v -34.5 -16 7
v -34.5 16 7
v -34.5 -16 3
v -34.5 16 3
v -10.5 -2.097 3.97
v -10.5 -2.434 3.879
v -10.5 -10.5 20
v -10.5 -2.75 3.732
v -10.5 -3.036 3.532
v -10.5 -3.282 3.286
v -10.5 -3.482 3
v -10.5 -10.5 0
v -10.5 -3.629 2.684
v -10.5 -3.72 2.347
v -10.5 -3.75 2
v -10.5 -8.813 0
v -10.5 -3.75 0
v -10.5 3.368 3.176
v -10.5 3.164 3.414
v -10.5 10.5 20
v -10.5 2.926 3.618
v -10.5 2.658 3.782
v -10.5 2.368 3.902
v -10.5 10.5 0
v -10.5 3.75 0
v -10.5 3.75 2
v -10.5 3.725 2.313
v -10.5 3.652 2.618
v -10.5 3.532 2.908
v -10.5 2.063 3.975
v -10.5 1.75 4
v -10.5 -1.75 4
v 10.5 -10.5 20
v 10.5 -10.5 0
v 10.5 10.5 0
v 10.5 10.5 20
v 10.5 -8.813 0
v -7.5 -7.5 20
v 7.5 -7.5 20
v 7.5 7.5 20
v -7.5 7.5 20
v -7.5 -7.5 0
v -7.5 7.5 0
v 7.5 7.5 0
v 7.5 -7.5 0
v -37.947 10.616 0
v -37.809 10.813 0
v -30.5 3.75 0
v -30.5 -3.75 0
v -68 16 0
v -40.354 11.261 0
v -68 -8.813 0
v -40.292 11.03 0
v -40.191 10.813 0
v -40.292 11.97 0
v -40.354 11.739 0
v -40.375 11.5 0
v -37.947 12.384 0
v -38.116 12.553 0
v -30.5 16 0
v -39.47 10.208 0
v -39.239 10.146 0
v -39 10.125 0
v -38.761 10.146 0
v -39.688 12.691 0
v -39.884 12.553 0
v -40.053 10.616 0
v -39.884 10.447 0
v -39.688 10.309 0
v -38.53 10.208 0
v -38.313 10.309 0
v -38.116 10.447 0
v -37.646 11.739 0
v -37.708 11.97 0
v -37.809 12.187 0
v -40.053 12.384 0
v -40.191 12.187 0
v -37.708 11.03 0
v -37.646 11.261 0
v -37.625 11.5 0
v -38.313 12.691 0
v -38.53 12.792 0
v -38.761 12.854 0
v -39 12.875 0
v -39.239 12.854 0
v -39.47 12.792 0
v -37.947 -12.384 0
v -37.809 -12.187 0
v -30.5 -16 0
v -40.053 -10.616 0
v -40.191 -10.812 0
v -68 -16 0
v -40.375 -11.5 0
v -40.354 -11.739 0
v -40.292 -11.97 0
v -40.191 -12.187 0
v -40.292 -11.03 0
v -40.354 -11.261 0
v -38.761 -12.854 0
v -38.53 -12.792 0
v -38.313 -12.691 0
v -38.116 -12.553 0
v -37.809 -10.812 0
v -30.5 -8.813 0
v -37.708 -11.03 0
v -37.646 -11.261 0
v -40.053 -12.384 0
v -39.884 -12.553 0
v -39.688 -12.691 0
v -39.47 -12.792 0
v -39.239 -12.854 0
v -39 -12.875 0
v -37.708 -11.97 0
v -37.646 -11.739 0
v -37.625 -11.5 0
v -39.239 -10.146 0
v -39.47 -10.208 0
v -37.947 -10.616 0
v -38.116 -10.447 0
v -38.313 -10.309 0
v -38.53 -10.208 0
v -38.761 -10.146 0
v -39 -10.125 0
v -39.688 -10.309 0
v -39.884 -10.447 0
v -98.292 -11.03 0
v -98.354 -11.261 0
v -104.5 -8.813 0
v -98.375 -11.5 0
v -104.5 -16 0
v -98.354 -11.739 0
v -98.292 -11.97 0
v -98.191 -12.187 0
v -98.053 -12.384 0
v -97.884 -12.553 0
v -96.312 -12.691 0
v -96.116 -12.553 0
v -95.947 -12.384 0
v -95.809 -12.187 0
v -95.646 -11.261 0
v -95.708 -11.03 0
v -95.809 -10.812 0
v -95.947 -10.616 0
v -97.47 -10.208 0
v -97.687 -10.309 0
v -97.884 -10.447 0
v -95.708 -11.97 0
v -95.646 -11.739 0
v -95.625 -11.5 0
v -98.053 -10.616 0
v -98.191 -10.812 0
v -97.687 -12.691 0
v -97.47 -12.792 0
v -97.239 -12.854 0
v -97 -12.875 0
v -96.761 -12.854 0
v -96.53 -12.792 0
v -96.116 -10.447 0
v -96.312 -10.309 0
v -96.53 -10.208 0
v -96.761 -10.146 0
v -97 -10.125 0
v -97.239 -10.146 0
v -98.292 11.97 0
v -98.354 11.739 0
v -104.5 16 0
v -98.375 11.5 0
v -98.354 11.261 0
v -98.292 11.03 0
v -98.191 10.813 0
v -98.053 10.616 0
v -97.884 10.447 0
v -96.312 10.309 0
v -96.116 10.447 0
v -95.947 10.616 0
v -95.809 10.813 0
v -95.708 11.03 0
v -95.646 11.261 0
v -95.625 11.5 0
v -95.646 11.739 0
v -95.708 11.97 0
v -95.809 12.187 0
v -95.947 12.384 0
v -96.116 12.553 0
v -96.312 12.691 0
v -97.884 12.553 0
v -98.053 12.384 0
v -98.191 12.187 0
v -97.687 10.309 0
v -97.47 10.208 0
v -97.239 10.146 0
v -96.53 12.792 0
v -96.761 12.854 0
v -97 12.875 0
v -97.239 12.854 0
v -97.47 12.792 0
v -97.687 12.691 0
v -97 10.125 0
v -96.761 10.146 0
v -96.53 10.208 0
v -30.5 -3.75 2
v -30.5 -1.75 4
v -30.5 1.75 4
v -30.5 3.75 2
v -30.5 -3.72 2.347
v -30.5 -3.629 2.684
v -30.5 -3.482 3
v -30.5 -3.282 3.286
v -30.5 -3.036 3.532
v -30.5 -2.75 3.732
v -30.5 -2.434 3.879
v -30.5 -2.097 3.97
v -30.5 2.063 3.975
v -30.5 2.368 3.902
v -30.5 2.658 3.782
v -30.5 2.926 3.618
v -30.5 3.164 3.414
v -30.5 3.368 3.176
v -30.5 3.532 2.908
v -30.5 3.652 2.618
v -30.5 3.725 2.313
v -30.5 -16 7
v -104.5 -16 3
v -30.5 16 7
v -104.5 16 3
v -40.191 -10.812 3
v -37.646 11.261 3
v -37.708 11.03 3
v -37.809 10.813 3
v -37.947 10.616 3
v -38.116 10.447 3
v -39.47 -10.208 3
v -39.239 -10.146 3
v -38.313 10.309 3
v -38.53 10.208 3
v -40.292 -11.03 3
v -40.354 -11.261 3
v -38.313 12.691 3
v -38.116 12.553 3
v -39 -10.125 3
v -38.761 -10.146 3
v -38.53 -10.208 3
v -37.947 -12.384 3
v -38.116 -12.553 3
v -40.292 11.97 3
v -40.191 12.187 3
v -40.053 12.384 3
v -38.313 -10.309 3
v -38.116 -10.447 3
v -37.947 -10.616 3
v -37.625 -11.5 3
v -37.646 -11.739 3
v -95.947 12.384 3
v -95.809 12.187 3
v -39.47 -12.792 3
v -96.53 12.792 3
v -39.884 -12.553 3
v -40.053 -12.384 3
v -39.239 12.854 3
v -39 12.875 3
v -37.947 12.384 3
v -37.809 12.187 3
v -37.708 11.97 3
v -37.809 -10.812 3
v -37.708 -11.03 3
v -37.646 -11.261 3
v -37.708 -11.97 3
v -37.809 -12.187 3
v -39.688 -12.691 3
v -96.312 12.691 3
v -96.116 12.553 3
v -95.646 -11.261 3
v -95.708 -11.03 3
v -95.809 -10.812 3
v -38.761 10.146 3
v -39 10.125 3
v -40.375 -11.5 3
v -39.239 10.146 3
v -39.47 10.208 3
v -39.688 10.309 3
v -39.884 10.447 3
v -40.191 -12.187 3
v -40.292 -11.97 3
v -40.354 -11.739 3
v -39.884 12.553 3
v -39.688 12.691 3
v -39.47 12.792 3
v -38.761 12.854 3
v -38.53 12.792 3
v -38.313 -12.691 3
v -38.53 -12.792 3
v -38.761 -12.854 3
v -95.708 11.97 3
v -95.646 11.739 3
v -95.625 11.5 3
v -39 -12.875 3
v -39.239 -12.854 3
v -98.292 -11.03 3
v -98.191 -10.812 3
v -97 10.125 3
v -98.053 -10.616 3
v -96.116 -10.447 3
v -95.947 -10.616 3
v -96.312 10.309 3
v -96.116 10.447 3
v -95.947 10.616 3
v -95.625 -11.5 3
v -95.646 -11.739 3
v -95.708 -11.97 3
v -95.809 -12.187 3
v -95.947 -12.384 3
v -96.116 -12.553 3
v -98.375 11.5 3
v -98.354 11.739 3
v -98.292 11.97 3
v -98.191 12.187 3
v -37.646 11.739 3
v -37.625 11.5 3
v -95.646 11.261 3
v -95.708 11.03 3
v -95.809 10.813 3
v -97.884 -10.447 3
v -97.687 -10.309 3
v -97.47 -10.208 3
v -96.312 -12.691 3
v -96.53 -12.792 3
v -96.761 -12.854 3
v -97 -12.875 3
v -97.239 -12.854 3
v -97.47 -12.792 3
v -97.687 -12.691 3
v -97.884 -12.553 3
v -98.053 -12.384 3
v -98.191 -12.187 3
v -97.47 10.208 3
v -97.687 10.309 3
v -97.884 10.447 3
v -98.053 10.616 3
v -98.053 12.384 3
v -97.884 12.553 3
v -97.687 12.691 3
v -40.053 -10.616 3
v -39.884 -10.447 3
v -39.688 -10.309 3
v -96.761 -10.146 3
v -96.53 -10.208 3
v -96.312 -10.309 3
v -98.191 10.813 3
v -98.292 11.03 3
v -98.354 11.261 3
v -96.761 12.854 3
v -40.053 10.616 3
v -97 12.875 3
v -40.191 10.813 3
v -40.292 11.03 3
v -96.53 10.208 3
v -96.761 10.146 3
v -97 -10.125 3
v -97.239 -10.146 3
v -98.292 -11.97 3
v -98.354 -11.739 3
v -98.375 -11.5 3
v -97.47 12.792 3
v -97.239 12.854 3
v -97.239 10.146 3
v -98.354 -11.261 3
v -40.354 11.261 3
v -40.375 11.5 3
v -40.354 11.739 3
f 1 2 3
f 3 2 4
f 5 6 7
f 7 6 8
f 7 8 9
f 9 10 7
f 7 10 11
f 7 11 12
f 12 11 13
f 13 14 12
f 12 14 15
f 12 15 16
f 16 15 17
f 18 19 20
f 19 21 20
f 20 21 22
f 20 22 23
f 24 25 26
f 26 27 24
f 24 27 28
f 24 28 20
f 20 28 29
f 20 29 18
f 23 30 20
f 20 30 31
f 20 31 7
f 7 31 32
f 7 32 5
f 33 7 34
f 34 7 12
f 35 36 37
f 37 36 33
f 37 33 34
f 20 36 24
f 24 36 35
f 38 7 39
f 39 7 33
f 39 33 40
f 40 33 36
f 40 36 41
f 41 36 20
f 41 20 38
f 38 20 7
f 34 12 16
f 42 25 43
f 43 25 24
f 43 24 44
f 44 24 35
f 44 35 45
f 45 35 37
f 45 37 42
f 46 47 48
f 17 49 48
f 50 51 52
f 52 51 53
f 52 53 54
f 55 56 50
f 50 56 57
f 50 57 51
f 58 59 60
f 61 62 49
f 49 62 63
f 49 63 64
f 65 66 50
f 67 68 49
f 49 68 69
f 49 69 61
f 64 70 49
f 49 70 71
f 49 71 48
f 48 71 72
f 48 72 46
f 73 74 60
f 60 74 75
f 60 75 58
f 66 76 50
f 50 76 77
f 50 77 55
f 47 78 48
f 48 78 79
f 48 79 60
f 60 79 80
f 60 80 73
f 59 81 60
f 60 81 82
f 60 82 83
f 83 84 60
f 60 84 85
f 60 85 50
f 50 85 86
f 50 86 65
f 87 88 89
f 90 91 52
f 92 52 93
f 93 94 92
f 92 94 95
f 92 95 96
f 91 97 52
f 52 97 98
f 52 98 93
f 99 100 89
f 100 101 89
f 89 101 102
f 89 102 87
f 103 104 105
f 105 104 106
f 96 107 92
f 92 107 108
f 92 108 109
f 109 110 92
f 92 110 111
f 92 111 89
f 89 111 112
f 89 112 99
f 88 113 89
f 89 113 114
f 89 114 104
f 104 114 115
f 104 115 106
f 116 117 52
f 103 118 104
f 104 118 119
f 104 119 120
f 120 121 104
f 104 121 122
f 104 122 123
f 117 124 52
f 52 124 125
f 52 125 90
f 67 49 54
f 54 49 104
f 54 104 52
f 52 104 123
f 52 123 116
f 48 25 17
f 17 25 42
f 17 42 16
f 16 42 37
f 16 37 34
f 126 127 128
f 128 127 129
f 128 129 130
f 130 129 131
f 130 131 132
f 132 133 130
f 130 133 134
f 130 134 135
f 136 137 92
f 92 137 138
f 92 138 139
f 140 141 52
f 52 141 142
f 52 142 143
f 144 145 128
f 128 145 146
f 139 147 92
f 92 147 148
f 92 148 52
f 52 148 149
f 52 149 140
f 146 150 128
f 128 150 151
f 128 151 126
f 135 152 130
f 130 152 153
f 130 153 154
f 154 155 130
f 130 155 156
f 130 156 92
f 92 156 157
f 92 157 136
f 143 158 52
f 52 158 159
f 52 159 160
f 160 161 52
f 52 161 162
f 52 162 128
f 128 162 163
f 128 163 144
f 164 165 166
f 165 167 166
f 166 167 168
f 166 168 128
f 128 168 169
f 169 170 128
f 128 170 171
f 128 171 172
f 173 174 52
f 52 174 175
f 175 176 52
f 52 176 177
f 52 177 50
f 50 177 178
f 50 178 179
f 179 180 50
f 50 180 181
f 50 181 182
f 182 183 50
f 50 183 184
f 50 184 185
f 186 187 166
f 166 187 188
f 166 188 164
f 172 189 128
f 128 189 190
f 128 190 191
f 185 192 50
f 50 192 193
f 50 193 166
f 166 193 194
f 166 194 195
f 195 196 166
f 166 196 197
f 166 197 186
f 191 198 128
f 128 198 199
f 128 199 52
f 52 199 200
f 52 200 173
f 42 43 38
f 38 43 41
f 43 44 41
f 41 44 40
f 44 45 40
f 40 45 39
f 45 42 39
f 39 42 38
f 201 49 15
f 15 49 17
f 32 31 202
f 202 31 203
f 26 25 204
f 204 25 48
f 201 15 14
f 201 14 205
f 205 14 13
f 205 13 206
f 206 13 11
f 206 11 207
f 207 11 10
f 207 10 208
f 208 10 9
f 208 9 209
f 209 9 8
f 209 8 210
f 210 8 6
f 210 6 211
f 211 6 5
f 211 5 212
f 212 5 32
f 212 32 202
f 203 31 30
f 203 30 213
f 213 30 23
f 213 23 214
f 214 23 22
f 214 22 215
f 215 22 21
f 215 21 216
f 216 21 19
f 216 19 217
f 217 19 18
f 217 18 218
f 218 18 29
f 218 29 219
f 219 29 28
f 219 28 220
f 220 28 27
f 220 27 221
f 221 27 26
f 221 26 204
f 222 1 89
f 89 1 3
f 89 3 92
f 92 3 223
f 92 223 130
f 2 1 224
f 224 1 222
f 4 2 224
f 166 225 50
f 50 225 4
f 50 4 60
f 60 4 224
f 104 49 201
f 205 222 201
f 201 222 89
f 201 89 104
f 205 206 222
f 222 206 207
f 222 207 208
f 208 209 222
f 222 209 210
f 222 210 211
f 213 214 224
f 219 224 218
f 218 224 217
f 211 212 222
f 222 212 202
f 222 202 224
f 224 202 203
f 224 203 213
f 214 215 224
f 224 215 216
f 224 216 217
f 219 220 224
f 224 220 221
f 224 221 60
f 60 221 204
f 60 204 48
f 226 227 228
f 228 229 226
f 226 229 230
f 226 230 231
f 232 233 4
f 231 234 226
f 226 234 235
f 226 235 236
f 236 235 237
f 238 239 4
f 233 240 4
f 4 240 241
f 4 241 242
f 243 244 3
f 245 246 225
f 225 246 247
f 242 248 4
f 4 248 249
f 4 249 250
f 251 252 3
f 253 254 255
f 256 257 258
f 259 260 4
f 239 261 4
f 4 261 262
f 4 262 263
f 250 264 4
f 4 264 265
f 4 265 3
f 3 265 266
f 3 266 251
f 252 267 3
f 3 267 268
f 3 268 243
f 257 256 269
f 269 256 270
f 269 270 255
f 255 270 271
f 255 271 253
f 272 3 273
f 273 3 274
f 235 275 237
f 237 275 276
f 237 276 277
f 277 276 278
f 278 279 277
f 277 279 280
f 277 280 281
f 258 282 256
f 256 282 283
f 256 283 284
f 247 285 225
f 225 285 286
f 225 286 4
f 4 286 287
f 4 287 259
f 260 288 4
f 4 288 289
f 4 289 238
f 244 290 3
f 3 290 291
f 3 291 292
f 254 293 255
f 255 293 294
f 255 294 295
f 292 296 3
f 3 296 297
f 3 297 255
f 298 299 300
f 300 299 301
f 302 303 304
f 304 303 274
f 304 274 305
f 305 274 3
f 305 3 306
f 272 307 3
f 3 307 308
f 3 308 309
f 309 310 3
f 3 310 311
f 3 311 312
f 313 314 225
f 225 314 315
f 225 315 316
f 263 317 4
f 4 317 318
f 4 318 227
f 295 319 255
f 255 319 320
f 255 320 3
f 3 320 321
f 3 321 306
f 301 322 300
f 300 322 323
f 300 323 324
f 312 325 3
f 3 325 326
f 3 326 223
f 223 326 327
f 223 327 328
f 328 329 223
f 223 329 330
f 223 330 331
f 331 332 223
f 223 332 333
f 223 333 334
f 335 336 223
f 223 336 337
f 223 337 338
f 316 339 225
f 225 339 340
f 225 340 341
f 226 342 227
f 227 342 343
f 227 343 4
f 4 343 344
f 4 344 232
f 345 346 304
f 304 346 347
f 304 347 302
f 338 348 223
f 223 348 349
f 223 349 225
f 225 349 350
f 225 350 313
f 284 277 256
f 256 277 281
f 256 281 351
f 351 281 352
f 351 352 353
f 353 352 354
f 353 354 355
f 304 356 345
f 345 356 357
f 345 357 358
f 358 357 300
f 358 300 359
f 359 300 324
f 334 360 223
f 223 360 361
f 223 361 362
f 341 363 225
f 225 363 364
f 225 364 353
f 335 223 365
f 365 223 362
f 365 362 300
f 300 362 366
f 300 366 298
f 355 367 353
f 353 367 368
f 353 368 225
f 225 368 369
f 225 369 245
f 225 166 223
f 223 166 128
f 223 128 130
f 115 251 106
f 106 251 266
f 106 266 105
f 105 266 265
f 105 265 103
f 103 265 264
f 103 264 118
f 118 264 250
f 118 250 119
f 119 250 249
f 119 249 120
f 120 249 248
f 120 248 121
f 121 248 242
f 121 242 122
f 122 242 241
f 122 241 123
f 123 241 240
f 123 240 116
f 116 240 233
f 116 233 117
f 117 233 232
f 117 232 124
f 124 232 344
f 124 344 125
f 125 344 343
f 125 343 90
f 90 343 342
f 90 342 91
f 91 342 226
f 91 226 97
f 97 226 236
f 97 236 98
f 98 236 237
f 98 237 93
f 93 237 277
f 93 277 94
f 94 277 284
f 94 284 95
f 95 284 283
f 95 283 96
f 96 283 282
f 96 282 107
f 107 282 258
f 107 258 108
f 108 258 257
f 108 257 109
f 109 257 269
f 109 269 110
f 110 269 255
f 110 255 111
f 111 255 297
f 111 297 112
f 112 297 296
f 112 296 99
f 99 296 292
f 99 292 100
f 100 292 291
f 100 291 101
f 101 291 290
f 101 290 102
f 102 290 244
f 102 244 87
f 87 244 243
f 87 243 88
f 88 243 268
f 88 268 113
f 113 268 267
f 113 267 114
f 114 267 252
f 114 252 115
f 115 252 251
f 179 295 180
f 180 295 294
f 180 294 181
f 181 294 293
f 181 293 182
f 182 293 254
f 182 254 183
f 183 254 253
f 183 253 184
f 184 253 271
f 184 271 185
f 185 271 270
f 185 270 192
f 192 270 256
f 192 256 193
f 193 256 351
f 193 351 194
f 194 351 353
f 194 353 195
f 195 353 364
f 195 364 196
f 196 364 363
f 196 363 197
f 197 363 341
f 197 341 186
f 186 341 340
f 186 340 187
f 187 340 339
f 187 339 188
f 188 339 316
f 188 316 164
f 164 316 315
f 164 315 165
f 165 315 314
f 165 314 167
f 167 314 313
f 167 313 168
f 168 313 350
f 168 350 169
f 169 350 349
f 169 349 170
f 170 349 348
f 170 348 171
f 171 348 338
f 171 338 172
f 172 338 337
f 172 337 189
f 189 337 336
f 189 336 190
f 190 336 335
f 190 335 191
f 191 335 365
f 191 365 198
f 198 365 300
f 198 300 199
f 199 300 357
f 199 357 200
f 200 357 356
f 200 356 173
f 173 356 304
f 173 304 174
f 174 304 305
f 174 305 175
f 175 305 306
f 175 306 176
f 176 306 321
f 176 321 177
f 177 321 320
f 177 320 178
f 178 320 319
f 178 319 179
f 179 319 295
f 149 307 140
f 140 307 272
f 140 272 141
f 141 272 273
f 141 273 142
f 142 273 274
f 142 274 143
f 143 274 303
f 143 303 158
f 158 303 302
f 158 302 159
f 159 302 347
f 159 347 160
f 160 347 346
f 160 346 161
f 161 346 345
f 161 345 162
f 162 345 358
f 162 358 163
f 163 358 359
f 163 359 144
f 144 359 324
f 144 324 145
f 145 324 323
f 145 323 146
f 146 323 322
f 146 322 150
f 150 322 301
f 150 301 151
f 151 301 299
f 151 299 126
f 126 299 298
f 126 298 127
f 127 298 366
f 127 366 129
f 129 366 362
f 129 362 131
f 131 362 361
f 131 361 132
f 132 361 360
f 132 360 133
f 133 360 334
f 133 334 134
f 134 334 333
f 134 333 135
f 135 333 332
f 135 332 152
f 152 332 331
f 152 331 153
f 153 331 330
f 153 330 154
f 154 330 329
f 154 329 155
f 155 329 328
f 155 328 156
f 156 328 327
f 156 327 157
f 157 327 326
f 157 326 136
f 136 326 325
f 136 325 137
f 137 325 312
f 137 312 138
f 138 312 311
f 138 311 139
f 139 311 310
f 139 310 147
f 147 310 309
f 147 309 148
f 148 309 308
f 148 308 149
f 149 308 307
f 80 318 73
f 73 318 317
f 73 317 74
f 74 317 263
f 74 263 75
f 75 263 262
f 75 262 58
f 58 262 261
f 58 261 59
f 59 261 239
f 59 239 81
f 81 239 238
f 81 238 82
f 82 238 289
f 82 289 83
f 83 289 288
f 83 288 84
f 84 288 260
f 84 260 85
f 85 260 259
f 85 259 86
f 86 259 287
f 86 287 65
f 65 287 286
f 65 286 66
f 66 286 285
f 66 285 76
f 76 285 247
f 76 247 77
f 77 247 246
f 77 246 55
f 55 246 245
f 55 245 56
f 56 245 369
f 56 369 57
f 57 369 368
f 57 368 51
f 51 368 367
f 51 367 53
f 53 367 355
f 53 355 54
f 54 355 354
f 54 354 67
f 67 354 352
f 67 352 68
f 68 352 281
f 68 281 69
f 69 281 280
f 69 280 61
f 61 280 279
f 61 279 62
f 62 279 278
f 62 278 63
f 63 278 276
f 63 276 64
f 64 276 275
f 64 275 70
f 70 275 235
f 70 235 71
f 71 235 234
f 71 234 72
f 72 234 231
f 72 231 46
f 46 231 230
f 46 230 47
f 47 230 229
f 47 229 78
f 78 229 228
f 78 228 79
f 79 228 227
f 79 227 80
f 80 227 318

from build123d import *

# Parameters (mm, degrees)
SKETCH2_W           = 21
SKETCH2_H           = 21
BOSS_EXTRUDE1_DEPTH = 20
SKETCH3_W           = 15
SKETCH3_H           = 15
CUT_EXTRUDE1_DEPTH  = 20
SKETCH4_W           = 4
SKETCH4_H           = 7.5
BOSS_EXTRUDE2_DEPTH = 20
FILLET2_R           = 2
SKETCH5_W           = 7
SKETCH5_H           = 32
BOSS_EXTRUDE3_DEPTH = 4
SKETCH6_W           = 3
SKETCH6_H           = 32
BOSS_EXTRUDE4_DEPTH = 70
SKETCH8_R           = 1.375
CUT_EXTRUDE2_DEPTH  = 4


with BuildPart() as part:
    # Sketch2 → Boss-Extrude1 (new body)
    with BuildSketch(Plane.XY):
        Rectangle(SKETCH2_W, SKETCH2_H)
    extrude(amount=BOSS_EXTRUDE1_DEPTH)

    # Sketch3 → Cut-Extrude1 (cut)
    with BuildSketch(Plane.XY.offset(20)):
        Rectangle(SKETCH3_W, SKETCH3_H)
    extrude(amount=-CUT_EXTRUDE1_DEPTH, mode=Mode.SUBTRACT)

    # Sketch4 → Boss-Extrude2 (add)
    with BuildSketch(Plane.ZY.offset(10.5)):
        with Locations((2, 0)):
            Rectangle(SKETCH4_W, SKETCH4_H)
    extrude(amount=BOSS_EXTRUDE2_DEPTH)

    # Fillet2
    fillet2_edges = [part.edges().sort_by_distance(p)[0] for p in [
        (-20.5, -3.75, 4),
        (-20.5, 3.75, 4),
    ]]
    fillet(fillet2_edges, radius=FILLET2_R)

    # Sketch5 → Boss-Extrude3 (add)
    with BuildSketch(Plane.ZY.offset(30.5)):
        with Locations((3.5, 0)):
            Rectangle(SKETCH5_W, SKETCH5_H)
    extrude(amount=BOSS_EXTRUDE3_DEPTH)

    # Sketch6 → Boss-Extrude4 (add)
    with BuildSketch(Plane.ZY.offset(34.5)):
        with Locations((1.5, 0)):
            Rectangle(SKETCH6_W, SKETCH6_H)
    extrude(amount=BOSS_EXTRUDE4_DEPTH)

    # Sketch8 → Cut-Extrude2 (cut)
    with BuildSketch(Plane.XY.offset(3)):
        with Locations((-39, -11.5)):
            Circle(SKETCH8_R)
        with Locations((-39, 11.5)):
            Circle(SKETCH8_R)
        with Locations((-97, -11.5)):
            Circle(SKETCH8_R)
        with Locations((-97, 11.5)):
            Circle(SKETCH8_R)
    extrude(amount=-CUT_EXTRUDE2_DEPTH, mode=Mode.SUBTRACT)


solid = part.part
